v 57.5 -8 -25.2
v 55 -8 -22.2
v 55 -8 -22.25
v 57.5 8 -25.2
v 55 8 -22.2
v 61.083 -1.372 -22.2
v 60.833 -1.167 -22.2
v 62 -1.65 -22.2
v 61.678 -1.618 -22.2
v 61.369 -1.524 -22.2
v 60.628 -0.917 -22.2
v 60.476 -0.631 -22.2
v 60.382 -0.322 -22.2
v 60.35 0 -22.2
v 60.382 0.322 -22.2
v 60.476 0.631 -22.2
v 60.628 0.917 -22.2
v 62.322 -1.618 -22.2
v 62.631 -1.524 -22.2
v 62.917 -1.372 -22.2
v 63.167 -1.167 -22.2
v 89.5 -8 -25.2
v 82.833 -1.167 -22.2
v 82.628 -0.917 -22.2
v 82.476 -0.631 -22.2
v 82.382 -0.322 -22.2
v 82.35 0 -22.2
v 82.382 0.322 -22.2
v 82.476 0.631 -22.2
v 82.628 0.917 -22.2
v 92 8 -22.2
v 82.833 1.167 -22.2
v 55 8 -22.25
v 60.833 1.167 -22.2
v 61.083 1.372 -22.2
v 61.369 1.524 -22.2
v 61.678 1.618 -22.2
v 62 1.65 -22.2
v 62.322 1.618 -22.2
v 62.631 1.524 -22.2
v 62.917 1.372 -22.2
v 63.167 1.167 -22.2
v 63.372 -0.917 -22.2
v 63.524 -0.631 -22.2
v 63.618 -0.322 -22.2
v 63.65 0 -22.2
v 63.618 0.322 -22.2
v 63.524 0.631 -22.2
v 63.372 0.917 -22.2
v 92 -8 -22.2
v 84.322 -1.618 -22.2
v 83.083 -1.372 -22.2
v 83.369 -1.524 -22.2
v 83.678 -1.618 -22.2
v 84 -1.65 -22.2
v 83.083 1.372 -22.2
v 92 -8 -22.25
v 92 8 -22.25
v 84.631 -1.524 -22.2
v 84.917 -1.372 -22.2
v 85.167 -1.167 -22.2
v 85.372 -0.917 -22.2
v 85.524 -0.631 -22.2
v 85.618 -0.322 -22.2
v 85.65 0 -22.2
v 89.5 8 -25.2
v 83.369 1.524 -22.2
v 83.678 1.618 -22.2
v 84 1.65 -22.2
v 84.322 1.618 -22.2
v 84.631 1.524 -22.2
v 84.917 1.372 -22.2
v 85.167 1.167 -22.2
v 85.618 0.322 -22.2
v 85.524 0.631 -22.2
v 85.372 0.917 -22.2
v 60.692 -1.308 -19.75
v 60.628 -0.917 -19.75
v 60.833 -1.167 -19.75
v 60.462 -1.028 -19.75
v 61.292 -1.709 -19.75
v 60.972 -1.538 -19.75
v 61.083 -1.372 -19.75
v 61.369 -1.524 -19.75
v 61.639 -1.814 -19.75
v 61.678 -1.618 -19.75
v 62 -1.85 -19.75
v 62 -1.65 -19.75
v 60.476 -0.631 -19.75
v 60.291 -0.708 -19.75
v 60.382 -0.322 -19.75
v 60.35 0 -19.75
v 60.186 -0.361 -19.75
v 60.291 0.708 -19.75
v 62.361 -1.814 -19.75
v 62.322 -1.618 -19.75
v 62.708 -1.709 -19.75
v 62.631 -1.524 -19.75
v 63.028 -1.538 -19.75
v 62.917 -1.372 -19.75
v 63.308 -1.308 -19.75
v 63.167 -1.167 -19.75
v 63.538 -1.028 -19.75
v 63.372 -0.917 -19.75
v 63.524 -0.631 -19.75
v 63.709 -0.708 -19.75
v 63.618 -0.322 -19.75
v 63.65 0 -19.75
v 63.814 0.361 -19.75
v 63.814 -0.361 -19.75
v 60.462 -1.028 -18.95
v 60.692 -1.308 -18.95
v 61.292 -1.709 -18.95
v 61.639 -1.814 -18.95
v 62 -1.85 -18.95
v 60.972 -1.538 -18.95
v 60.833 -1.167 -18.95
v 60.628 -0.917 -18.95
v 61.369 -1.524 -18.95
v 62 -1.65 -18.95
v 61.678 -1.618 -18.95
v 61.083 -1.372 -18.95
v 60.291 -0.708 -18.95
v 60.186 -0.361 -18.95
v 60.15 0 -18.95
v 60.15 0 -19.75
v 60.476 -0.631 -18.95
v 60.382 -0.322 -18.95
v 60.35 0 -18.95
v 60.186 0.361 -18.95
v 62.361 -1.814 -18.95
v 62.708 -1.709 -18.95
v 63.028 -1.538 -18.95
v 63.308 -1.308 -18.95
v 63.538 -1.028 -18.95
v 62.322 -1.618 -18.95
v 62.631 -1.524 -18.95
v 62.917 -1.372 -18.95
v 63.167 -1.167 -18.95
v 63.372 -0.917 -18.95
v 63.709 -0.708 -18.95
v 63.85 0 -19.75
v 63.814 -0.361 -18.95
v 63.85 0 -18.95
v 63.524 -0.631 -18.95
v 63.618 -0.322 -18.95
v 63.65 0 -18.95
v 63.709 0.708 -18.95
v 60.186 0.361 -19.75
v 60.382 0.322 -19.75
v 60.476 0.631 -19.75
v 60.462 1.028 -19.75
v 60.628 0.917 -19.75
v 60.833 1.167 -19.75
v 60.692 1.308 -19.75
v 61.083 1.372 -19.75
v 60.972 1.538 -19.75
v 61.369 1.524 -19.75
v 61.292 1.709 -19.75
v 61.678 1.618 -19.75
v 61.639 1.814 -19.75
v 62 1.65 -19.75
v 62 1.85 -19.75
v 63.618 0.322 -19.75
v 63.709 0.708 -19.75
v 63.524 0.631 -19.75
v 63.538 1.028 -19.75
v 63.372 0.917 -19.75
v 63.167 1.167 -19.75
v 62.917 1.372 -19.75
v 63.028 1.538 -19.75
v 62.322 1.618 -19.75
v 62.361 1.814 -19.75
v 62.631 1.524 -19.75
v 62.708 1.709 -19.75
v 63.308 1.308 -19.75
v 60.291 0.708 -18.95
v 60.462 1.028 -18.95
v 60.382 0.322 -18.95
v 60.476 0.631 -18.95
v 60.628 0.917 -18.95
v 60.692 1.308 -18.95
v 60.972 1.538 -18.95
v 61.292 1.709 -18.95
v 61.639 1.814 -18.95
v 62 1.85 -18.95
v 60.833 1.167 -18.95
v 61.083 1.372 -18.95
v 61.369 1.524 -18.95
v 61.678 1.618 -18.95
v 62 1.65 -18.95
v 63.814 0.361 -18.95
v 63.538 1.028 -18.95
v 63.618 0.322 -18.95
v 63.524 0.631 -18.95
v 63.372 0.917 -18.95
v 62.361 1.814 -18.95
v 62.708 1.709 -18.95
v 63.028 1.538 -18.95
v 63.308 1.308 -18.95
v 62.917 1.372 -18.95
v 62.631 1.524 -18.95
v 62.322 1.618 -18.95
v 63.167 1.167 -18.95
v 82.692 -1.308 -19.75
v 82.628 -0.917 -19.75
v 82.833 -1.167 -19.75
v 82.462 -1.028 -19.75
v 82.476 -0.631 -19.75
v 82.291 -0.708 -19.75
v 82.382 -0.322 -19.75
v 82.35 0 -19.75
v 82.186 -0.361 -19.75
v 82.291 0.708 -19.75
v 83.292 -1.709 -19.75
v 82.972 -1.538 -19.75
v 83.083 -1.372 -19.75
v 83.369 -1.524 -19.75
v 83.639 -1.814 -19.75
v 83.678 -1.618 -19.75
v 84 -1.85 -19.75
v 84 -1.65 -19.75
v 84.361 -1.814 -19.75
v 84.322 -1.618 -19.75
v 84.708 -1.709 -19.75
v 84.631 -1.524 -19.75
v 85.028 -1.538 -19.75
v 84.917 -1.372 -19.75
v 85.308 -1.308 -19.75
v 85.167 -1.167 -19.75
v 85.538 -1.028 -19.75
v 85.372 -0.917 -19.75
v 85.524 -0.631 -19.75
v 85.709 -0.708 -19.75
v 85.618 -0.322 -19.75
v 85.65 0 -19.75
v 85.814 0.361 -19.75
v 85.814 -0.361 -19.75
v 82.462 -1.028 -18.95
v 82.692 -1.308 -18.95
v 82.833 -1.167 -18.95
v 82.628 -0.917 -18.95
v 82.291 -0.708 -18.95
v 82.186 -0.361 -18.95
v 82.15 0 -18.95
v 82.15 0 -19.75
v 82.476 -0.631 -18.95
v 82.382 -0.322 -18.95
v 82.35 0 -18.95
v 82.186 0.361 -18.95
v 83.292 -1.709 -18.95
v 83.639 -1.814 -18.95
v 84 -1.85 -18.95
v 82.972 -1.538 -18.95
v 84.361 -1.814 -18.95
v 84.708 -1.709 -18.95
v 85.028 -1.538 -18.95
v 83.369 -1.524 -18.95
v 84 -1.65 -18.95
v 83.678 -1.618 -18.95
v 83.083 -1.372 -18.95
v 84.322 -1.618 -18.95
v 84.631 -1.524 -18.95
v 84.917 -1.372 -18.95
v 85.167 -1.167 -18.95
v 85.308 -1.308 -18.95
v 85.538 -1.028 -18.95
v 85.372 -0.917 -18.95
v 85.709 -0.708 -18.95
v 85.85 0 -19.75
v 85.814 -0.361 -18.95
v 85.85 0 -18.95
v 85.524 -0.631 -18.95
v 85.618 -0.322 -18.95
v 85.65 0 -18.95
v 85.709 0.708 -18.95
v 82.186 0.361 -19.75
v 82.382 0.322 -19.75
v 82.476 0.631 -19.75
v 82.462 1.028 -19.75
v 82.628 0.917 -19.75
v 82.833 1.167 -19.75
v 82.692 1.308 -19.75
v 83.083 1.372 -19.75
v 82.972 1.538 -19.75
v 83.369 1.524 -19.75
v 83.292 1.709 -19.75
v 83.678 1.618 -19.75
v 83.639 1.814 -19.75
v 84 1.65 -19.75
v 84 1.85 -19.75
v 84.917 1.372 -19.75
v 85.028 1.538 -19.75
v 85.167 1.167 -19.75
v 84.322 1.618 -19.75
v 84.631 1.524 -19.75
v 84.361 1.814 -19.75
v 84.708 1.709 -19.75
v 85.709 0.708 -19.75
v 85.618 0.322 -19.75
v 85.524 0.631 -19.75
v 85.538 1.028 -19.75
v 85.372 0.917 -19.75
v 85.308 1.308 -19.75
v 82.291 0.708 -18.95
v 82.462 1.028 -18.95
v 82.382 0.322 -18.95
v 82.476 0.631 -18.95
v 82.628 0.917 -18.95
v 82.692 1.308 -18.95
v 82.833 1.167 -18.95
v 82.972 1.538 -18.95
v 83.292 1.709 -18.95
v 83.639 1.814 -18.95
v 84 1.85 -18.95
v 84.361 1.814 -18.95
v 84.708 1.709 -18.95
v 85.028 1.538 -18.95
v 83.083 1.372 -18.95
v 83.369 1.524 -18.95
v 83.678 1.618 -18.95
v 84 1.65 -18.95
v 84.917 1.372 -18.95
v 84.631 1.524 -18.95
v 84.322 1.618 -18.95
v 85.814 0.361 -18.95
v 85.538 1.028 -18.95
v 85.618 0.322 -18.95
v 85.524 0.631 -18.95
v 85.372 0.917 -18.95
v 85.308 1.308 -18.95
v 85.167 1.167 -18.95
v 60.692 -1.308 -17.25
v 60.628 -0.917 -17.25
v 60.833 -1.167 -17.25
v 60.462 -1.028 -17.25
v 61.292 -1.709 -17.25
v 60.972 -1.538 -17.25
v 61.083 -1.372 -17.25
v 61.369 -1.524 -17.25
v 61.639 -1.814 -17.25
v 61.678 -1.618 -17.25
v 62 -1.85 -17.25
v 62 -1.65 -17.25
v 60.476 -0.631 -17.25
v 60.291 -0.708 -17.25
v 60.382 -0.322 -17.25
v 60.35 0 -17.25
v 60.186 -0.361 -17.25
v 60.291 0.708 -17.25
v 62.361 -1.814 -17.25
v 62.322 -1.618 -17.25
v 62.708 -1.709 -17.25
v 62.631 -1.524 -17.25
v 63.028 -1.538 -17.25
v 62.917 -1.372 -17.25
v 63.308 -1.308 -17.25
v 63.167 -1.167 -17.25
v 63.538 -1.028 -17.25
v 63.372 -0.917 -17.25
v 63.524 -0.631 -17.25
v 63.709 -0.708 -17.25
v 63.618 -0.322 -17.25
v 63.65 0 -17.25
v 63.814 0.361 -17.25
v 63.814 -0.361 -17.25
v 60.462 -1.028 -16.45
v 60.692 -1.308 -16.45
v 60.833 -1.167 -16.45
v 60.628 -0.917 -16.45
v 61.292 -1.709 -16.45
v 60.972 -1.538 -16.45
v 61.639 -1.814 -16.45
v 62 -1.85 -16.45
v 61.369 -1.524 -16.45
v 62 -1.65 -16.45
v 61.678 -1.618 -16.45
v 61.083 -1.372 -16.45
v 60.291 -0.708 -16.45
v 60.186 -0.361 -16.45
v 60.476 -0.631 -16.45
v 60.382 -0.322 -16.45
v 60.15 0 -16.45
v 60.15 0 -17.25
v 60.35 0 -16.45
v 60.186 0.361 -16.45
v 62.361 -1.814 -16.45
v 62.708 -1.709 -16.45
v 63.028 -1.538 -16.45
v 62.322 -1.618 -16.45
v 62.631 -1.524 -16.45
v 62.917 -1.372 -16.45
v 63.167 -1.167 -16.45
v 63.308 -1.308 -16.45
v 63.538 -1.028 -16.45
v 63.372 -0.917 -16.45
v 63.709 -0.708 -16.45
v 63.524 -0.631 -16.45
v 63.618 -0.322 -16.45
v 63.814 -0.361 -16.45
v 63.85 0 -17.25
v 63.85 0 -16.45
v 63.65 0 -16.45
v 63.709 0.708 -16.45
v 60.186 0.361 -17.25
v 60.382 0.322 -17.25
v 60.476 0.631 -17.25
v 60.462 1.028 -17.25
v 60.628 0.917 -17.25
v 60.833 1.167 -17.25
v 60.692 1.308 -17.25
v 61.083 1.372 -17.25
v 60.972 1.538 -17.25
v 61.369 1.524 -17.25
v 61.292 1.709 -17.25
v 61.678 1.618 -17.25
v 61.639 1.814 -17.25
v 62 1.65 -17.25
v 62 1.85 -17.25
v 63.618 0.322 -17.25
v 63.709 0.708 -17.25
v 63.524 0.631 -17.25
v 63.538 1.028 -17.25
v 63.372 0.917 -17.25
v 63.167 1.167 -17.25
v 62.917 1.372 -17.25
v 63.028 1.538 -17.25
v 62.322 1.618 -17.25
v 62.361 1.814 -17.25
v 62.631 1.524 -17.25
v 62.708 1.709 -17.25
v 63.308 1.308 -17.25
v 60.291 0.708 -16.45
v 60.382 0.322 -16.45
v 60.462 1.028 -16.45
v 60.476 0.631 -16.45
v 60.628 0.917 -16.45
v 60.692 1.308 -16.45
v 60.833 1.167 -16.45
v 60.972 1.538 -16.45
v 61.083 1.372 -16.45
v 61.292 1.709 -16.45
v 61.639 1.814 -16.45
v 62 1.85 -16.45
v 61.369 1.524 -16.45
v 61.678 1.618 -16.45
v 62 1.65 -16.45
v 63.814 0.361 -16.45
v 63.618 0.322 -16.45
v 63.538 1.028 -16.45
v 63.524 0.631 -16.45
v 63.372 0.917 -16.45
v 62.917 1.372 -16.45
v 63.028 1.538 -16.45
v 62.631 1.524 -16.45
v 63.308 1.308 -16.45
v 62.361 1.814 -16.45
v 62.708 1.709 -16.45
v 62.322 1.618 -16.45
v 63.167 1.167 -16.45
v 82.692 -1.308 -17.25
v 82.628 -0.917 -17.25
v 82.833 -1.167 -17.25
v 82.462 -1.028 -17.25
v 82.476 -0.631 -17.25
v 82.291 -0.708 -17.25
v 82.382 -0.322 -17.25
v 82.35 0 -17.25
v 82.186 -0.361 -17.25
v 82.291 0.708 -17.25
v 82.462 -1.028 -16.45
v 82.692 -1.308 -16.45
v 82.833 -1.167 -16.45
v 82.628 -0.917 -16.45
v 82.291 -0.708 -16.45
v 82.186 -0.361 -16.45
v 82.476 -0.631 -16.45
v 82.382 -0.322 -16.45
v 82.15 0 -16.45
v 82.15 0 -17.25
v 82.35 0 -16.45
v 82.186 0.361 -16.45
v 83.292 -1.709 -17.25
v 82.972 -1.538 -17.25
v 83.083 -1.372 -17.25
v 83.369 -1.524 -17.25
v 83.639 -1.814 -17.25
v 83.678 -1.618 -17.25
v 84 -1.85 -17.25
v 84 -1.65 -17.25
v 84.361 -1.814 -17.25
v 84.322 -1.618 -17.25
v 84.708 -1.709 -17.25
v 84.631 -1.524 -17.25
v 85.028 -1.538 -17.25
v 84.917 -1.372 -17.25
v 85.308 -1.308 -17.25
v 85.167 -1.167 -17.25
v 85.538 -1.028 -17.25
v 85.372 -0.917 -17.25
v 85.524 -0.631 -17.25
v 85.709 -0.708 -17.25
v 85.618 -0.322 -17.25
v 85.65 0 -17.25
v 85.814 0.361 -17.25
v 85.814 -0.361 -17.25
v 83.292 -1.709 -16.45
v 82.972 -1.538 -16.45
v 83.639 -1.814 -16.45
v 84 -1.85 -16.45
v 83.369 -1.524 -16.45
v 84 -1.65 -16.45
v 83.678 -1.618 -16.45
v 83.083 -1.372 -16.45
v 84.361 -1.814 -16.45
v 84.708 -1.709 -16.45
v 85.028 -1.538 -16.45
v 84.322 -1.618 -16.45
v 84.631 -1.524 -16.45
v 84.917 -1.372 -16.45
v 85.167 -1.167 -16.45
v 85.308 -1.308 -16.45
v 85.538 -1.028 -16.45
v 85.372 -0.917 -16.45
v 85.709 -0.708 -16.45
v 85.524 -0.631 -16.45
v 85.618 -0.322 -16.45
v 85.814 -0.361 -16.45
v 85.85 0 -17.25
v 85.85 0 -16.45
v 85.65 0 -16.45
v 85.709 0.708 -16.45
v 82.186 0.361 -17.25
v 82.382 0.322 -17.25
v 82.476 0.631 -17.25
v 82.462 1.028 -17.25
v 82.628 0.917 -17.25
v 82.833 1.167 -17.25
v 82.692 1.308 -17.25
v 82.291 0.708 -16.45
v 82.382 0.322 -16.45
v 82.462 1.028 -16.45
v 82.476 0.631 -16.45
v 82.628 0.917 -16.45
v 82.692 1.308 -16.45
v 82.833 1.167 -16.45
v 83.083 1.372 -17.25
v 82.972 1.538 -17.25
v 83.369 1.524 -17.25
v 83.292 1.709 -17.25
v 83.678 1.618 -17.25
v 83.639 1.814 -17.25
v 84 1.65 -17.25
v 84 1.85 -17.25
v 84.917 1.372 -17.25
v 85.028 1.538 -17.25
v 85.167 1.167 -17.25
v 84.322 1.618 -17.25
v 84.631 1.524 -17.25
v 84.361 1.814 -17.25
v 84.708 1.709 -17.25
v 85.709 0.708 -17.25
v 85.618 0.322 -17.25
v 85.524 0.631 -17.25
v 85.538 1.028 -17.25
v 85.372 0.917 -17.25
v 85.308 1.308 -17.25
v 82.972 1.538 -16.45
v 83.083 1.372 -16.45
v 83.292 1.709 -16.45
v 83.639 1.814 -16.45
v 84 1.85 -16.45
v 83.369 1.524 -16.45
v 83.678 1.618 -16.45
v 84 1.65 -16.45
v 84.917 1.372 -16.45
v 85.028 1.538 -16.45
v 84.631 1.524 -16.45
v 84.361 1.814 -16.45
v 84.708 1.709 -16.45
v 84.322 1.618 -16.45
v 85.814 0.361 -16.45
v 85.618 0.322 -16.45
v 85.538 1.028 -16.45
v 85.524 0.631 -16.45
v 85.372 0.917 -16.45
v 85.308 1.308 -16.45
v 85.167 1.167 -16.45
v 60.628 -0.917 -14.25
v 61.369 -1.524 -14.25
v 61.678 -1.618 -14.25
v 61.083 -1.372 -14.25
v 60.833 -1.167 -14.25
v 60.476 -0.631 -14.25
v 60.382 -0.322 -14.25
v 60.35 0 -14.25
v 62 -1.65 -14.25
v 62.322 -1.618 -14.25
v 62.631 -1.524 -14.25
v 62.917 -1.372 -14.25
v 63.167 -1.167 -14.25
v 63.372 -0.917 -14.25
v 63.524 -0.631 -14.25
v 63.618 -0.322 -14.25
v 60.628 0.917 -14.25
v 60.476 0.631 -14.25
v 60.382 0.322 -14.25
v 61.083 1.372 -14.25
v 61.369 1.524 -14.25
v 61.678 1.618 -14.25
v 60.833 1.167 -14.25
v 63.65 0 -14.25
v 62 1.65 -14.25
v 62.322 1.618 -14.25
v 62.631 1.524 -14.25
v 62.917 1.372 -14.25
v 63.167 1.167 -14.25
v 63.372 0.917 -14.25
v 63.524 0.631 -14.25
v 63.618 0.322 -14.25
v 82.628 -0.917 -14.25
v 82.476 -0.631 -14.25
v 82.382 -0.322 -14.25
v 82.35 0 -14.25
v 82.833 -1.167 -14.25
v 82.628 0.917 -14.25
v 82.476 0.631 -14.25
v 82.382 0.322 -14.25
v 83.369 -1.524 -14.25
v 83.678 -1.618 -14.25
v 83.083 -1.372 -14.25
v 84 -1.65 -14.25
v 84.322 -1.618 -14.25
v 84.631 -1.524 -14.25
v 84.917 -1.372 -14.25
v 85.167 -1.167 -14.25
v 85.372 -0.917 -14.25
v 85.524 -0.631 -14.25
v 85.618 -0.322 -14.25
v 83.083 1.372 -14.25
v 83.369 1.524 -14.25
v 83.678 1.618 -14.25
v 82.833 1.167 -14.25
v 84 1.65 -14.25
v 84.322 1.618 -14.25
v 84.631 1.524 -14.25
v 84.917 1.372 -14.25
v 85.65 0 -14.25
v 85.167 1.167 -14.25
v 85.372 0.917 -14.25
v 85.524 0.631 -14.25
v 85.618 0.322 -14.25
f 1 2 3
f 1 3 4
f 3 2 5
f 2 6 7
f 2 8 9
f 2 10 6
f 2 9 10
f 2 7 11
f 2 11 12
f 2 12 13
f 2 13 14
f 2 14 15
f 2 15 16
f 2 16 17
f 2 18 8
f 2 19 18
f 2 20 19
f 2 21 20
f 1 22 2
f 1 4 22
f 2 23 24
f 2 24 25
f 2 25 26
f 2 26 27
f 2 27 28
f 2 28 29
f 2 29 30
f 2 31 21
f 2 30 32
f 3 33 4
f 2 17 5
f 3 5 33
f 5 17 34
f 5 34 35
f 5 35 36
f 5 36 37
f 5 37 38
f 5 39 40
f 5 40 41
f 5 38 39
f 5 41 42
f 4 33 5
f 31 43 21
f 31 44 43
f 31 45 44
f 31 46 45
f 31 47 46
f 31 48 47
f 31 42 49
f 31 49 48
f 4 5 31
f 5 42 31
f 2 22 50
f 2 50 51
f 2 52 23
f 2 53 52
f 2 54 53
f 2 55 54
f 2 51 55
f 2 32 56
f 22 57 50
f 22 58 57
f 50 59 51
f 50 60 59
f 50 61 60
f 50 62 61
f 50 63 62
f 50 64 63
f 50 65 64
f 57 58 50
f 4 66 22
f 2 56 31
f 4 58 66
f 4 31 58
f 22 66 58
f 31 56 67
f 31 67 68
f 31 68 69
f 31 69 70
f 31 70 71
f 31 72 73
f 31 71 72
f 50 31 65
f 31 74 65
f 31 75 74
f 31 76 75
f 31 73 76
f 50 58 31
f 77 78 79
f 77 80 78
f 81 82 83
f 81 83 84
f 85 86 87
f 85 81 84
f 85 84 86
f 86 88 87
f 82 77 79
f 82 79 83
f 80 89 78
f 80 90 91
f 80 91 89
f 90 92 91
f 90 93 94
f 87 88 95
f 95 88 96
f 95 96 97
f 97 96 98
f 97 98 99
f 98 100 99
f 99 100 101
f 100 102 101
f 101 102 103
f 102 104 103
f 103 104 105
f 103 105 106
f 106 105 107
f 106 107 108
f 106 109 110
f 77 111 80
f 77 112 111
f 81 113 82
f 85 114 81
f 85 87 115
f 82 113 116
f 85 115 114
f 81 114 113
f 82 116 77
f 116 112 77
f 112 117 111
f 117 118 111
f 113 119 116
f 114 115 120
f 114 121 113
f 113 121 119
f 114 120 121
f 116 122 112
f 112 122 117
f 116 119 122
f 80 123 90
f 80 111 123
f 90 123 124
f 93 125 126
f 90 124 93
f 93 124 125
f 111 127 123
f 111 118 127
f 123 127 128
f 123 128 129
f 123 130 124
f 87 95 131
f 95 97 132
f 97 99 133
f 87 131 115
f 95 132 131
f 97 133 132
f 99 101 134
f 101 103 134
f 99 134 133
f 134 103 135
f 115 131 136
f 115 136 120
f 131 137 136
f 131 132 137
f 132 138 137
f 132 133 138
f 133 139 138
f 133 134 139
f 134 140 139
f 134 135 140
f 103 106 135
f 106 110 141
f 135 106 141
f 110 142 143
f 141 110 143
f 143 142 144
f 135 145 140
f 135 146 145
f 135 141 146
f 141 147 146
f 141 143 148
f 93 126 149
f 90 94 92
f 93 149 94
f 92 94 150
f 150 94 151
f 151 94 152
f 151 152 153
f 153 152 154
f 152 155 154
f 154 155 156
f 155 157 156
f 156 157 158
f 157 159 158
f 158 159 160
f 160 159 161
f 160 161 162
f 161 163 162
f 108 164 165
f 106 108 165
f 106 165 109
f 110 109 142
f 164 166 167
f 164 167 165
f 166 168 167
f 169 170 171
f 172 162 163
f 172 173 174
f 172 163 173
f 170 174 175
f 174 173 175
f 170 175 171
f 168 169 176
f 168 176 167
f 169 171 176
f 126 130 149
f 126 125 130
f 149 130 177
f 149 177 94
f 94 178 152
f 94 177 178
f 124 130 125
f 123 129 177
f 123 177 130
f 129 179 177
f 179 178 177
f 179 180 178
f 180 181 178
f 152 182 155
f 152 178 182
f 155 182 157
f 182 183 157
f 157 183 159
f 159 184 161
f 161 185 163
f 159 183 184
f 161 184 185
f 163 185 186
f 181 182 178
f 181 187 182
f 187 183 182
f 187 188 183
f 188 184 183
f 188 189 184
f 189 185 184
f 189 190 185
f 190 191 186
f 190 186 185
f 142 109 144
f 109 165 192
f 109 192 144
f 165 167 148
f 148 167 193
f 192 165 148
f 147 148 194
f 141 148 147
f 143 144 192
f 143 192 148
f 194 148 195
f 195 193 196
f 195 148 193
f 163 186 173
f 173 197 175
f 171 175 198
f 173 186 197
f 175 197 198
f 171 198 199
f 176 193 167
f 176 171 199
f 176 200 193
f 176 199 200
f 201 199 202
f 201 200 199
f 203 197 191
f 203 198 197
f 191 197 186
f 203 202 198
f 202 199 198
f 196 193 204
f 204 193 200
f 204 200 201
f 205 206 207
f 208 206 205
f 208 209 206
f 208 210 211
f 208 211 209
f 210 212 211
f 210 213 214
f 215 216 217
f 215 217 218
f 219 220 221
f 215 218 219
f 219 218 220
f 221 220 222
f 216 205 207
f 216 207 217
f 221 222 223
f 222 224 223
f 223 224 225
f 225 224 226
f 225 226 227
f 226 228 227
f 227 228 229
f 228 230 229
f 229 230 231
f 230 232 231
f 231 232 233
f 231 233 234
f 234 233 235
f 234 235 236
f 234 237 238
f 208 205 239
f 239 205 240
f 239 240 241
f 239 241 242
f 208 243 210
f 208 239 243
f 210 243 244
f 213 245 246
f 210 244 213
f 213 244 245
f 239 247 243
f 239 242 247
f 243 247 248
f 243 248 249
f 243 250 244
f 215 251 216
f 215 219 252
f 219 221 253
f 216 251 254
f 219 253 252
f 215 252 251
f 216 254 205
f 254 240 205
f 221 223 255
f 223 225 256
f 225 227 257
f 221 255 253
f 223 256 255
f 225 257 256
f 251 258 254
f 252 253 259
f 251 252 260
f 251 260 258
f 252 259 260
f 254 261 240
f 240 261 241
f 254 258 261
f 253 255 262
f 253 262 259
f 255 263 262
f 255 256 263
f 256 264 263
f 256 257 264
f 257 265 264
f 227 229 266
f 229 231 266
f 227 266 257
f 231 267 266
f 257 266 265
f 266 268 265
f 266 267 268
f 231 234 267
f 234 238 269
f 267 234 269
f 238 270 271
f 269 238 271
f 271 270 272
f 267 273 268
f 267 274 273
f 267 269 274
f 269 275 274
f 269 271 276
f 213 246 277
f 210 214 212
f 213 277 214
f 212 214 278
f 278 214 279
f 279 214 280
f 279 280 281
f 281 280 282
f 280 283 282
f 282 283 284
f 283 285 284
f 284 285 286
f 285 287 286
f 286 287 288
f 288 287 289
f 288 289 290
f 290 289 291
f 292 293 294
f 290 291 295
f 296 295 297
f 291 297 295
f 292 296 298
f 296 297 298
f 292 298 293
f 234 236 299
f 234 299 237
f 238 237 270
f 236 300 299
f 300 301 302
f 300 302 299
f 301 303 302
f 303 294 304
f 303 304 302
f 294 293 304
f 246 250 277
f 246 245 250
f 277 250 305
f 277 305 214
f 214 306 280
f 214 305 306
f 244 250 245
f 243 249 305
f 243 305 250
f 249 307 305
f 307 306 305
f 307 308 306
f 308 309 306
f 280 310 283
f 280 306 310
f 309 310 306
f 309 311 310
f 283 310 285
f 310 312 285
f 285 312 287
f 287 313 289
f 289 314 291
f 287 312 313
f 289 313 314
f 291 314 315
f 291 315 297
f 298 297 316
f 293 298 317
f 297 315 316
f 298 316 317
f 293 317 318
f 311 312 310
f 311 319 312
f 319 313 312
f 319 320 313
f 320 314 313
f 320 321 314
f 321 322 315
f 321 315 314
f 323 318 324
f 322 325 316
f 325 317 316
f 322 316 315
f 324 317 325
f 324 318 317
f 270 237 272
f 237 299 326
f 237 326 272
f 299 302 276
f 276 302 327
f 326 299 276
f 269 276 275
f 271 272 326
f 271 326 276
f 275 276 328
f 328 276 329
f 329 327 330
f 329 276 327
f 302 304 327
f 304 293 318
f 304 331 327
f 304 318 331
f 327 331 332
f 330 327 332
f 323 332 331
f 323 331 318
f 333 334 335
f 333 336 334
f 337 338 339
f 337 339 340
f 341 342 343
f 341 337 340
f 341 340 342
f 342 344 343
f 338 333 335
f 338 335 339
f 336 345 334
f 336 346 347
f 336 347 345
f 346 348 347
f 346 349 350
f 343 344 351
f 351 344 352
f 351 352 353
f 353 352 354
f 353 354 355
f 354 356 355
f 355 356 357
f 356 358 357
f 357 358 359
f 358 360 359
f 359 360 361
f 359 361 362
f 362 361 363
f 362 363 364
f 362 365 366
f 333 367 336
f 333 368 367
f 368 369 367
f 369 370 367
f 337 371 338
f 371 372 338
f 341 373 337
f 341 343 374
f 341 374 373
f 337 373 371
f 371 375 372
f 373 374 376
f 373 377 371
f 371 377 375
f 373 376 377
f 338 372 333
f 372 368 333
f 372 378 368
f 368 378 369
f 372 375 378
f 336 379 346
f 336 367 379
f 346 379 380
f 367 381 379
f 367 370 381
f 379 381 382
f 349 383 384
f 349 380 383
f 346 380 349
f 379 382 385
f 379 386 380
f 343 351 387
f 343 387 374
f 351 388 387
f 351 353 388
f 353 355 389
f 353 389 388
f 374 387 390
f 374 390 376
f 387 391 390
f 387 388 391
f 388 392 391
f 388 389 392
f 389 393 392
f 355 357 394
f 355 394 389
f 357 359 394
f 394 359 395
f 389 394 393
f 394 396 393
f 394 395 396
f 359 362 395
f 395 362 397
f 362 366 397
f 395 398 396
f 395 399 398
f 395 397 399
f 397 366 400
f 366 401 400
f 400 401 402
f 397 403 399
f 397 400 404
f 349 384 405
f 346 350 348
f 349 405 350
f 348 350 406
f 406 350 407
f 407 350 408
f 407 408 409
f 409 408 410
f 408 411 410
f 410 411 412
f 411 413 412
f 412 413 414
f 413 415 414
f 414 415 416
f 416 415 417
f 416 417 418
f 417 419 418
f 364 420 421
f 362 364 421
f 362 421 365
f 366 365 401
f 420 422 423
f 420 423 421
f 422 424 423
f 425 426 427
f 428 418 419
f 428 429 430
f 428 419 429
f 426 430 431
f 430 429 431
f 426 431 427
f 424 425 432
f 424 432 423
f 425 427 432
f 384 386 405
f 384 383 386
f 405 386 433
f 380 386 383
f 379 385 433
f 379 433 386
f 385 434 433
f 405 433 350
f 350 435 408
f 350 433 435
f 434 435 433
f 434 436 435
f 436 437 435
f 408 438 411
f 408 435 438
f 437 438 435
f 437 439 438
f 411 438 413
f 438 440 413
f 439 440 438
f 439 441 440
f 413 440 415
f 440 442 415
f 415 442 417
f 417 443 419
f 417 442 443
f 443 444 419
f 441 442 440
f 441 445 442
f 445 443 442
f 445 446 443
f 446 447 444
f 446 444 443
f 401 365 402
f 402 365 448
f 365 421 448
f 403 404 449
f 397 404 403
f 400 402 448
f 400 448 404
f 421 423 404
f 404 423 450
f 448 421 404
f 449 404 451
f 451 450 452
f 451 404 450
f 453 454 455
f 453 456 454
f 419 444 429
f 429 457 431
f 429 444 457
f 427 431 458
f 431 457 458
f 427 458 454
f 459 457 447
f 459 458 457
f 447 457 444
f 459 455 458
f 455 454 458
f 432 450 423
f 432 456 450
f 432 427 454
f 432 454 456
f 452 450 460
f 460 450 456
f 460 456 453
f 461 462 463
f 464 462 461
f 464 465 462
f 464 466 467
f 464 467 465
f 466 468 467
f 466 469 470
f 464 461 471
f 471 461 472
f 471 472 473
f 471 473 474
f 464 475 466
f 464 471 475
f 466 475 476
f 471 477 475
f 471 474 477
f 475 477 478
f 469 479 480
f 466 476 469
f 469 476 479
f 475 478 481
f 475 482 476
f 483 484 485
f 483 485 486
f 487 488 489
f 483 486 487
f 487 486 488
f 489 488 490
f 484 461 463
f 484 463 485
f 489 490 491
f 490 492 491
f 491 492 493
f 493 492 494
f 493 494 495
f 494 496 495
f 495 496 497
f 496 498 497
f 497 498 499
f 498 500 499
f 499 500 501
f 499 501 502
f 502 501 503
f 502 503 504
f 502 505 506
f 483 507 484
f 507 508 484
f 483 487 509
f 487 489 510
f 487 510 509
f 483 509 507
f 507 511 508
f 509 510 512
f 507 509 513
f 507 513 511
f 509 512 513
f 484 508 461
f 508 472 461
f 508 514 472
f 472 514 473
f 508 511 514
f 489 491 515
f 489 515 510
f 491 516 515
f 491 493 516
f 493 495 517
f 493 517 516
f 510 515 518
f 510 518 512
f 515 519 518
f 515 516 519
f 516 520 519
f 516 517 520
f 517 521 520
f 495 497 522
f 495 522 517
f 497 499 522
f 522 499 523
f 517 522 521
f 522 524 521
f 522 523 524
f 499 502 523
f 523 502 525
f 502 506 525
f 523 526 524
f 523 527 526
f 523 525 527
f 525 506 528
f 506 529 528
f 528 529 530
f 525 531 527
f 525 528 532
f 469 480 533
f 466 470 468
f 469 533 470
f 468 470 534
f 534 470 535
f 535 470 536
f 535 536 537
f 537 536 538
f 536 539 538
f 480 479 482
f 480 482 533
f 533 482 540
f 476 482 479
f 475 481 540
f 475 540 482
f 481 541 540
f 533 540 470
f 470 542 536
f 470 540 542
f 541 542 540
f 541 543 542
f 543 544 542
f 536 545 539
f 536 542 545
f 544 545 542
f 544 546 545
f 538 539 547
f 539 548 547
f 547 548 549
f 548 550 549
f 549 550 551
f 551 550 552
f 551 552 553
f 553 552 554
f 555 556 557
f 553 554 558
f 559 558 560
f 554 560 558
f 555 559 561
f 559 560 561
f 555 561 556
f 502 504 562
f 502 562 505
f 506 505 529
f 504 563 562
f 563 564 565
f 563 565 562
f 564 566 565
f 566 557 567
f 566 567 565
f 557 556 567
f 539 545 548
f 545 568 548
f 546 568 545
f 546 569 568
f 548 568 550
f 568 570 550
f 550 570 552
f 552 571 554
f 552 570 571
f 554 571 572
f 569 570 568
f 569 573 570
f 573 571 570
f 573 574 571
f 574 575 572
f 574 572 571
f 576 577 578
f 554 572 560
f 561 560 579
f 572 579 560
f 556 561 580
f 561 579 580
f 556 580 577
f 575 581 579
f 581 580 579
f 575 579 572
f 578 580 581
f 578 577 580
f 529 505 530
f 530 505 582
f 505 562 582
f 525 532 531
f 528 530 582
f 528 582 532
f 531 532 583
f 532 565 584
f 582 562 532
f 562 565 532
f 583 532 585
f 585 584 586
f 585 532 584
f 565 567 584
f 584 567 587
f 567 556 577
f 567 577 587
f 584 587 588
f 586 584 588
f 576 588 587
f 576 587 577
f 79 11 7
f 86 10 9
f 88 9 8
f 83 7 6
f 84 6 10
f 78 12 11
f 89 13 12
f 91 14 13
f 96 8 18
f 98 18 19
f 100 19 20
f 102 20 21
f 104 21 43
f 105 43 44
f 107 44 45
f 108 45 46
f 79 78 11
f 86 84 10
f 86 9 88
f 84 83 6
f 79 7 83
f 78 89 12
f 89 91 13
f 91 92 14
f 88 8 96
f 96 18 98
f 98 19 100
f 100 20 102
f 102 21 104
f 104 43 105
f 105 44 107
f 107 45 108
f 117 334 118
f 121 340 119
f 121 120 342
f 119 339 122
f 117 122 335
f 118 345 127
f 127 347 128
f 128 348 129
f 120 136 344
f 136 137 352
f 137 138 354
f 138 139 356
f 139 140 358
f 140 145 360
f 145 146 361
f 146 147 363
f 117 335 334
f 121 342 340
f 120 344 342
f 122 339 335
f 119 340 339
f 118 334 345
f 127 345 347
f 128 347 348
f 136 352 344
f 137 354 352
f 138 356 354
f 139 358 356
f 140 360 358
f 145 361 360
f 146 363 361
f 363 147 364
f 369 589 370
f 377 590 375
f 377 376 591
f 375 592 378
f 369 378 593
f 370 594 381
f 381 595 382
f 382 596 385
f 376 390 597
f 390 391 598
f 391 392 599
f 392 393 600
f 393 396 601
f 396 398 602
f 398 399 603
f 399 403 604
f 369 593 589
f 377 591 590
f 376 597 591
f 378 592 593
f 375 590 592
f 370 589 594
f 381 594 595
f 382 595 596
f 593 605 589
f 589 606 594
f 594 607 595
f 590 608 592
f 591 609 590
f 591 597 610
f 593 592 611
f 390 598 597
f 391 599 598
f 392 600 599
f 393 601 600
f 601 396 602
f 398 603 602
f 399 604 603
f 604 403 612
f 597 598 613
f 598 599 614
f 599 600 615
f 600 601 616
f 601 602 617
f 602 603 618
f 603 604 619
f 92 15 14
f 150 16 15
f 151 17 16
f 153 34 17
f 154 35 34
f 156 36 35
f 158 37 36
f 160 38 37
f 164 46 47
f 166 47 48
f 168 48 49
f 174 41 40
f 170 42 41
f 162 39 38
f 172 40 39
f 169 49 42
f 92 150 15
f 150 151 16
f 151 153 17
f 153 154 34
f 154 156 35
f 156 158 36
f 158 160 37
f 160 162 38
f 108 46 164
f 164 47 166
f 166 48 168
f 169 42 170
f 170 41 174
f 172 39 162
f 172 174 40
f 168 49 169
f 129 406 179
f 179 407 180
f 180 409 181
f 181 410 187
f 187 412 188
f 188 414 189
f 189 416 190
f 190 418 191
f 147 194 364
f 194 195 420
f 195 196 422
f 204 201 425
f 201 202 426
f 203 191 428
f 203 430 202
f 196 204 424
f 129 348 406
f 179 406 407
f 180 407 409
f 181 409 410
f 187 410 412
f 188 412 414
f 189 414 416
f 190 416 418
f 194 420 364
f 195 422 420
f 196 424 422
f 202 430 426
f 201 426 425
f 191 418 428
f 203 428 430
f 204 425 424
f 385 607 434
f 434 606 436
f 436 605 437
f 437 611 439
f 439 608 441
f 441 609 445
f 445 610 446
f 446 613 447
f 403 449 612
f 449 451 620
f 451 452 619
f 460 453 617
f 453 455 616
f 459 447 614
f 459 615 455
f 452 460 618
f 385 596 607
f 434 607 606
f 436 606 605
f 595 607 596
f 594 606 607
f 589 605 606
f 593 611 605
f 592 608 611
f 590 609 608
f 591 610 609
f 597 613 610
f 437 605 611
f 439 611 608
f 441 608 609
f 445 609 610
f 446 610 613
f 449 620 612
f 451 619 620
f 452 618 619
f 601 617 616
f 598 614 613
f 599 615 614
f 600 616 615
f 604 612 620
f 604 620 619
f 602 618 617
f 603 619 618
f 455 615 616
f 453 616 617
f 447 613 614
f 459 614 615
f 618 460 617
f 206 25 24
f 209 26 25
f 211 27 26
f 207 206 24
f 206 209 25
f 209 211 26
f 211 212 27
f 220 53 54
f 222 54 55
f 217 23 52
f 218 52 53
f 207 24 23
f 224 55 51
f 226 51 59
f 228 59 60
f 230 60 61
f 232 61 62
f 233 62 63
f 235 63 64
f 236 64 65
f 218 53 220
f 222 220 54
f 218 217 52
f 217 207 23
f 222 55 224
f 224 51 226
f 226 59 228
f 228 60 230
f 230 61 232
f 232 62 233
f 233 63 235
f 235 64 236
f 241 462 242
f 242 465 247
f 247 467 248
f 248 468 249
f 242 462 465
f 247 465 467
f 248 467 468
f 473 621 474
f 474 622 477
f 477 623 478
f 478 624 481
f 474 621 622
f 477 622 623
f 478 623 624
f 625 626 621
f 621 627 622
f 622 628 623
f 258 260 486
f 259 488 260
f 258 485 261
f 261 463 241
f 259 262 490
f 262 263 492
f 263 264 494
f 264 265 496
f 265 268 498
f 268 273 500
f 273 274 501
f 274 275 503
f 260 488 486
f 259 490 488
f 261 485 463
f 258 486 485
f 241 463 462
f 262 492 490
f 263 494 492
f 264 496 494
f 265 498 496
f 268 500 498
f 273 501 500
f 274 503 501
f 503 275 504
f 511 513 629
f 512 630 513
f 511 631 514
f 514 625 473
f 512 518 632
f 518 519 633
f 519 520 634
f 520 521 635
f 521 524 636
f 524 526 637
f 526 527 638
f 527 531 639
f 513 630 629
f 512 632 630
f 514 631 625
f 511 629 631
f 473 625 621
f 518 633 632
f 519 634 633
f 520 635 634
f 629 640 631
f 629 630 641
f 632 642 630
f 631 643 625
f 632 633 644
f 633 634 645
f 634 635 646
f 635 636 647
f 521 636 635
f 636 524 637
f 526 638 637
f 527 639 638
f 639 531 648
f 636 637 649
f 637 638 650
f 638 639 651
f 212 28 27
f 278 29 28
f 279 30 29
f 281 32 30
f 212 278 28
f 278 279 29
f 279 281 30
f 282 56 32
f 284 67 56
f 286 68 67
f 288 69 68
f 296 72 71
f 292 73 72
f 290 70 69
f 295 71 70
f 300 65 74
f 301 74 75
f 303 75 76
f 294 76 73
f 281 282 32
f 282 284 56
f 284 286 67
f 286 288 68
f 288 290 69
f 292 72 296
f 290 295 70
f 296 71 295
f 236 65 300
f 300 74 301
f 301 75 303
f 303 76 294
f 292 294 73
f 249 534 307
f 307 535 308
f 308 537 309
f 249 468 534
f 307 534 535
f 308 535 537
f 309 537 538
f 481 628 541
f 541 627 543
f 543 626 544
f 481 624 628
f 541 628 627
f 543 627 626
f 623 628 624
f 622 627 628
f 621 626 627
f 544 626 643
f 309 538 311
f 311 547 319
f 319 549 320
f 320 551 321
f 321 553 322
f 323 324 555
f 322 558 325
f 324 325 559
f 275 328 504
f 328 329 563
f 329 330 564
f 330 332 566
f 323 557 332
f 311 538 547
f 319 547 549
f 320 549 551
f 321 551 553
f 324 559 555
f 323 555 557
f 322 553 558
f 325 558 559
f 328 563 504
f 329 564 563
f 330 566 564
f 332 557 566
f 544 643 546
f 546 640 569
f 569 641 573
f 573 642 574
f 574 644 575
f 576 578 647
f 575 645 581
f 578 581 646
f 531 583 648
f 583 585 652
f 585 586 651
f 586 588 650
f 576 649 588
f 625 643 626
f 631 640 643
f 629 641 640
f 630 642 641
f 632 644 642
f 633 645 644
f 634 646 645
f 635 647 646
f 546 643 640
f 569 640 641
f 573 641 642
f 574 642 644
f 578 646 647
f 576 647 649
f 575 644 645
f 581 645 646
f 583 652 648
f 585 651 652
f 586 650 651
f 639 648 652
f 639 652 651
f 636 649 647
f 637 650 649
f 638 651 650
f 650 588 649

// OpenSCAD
// =============================================================================
// V6 TIBIA BLADE PAD (TPU 95A — print 5: 4 legs + spare)
// =============================================================================
// Backlog #15 extension (user call 2026-07-06): E-stop limp = collapse by
// design; as the knees fold the tibia BLADE BOTTOM (-Z, the flat print
// face) leads into the ground alongside the belly rails. 3-thick TPU pad
// over the blade underside takes that strike (and rock hits in deep
// crouch) instead of bare PA6-CF edge.
//
// Mount: two ribbed plugs press into the blade's LEGACY zip holes at
// x 62 / 84 (O3.2 vertical through-holes — the final cable routing uses
// the femur x84 + tibia x44 anchors, these two are unused) + CA dab.
// Sacrificial, replaceable. Same part fits L and R (symmetric in y),
// and both knee configs (X-config = software, hardware identical).
//
// Gate: leg_v6 check_fit knee-fold sweep re-run WITH the pad — the kfe
// mech stop is the tibia flank vs the femur fork throat, and the pad
// adds 3 to the blade underside. Pad points ride the tibia transform.
//
// Print: TPU 95A flat (pad face down), 100% infill, ~3 g.

$fn = 32;
EPS = 0.05;

PAD_X0 = 55;  PAD_X1 = 92;    // spans both plug holes (62 / 84)
PAD_W  = 16;                   // blade width there is 21.9..27.5
PAD_T  = 3.0;
SLAB_Z0 = -22.2;               // blade bottom plane (tibia frame)
PLUG_X = [62, 84];
PLUG_L = 8;                    // into the O3.2 through-holes
CHAMF  = 2.5;

module tibia_pad() {
    union() {
        // pad body, sled-chamfered ends (tibia frame: sits below the blade)
        hull() {
            translate([PAD_X0 + CHAMF, -PAD_W/2, SLAB_Z0 - PAD_T])
                cube([PAD_X1 - PAD_X0 - 2*CHAMF, PAD_W, EPS]);
            translate([PAD_X0, -PAD_W/2, SLAB_Z0 - EPS])
                cube([PAD_X1 - PAD_X0, PAD_W, EPS]);
        }
        // ribbed press plugs up into the blade holes
        for (px = PLUG_X)
            translate([px, 0, SLAB_Z0 - EPS]) {
                cylinder(d = 3.3, h = PLUG_L);
                for (rz = [2.5, 5.0])   // grip ribs (squish into O3.2)
                    translate([0, 0, rz]) cylinder(d = 3.7, h = 0.8);
            }
    }
}

tibia_pad();
